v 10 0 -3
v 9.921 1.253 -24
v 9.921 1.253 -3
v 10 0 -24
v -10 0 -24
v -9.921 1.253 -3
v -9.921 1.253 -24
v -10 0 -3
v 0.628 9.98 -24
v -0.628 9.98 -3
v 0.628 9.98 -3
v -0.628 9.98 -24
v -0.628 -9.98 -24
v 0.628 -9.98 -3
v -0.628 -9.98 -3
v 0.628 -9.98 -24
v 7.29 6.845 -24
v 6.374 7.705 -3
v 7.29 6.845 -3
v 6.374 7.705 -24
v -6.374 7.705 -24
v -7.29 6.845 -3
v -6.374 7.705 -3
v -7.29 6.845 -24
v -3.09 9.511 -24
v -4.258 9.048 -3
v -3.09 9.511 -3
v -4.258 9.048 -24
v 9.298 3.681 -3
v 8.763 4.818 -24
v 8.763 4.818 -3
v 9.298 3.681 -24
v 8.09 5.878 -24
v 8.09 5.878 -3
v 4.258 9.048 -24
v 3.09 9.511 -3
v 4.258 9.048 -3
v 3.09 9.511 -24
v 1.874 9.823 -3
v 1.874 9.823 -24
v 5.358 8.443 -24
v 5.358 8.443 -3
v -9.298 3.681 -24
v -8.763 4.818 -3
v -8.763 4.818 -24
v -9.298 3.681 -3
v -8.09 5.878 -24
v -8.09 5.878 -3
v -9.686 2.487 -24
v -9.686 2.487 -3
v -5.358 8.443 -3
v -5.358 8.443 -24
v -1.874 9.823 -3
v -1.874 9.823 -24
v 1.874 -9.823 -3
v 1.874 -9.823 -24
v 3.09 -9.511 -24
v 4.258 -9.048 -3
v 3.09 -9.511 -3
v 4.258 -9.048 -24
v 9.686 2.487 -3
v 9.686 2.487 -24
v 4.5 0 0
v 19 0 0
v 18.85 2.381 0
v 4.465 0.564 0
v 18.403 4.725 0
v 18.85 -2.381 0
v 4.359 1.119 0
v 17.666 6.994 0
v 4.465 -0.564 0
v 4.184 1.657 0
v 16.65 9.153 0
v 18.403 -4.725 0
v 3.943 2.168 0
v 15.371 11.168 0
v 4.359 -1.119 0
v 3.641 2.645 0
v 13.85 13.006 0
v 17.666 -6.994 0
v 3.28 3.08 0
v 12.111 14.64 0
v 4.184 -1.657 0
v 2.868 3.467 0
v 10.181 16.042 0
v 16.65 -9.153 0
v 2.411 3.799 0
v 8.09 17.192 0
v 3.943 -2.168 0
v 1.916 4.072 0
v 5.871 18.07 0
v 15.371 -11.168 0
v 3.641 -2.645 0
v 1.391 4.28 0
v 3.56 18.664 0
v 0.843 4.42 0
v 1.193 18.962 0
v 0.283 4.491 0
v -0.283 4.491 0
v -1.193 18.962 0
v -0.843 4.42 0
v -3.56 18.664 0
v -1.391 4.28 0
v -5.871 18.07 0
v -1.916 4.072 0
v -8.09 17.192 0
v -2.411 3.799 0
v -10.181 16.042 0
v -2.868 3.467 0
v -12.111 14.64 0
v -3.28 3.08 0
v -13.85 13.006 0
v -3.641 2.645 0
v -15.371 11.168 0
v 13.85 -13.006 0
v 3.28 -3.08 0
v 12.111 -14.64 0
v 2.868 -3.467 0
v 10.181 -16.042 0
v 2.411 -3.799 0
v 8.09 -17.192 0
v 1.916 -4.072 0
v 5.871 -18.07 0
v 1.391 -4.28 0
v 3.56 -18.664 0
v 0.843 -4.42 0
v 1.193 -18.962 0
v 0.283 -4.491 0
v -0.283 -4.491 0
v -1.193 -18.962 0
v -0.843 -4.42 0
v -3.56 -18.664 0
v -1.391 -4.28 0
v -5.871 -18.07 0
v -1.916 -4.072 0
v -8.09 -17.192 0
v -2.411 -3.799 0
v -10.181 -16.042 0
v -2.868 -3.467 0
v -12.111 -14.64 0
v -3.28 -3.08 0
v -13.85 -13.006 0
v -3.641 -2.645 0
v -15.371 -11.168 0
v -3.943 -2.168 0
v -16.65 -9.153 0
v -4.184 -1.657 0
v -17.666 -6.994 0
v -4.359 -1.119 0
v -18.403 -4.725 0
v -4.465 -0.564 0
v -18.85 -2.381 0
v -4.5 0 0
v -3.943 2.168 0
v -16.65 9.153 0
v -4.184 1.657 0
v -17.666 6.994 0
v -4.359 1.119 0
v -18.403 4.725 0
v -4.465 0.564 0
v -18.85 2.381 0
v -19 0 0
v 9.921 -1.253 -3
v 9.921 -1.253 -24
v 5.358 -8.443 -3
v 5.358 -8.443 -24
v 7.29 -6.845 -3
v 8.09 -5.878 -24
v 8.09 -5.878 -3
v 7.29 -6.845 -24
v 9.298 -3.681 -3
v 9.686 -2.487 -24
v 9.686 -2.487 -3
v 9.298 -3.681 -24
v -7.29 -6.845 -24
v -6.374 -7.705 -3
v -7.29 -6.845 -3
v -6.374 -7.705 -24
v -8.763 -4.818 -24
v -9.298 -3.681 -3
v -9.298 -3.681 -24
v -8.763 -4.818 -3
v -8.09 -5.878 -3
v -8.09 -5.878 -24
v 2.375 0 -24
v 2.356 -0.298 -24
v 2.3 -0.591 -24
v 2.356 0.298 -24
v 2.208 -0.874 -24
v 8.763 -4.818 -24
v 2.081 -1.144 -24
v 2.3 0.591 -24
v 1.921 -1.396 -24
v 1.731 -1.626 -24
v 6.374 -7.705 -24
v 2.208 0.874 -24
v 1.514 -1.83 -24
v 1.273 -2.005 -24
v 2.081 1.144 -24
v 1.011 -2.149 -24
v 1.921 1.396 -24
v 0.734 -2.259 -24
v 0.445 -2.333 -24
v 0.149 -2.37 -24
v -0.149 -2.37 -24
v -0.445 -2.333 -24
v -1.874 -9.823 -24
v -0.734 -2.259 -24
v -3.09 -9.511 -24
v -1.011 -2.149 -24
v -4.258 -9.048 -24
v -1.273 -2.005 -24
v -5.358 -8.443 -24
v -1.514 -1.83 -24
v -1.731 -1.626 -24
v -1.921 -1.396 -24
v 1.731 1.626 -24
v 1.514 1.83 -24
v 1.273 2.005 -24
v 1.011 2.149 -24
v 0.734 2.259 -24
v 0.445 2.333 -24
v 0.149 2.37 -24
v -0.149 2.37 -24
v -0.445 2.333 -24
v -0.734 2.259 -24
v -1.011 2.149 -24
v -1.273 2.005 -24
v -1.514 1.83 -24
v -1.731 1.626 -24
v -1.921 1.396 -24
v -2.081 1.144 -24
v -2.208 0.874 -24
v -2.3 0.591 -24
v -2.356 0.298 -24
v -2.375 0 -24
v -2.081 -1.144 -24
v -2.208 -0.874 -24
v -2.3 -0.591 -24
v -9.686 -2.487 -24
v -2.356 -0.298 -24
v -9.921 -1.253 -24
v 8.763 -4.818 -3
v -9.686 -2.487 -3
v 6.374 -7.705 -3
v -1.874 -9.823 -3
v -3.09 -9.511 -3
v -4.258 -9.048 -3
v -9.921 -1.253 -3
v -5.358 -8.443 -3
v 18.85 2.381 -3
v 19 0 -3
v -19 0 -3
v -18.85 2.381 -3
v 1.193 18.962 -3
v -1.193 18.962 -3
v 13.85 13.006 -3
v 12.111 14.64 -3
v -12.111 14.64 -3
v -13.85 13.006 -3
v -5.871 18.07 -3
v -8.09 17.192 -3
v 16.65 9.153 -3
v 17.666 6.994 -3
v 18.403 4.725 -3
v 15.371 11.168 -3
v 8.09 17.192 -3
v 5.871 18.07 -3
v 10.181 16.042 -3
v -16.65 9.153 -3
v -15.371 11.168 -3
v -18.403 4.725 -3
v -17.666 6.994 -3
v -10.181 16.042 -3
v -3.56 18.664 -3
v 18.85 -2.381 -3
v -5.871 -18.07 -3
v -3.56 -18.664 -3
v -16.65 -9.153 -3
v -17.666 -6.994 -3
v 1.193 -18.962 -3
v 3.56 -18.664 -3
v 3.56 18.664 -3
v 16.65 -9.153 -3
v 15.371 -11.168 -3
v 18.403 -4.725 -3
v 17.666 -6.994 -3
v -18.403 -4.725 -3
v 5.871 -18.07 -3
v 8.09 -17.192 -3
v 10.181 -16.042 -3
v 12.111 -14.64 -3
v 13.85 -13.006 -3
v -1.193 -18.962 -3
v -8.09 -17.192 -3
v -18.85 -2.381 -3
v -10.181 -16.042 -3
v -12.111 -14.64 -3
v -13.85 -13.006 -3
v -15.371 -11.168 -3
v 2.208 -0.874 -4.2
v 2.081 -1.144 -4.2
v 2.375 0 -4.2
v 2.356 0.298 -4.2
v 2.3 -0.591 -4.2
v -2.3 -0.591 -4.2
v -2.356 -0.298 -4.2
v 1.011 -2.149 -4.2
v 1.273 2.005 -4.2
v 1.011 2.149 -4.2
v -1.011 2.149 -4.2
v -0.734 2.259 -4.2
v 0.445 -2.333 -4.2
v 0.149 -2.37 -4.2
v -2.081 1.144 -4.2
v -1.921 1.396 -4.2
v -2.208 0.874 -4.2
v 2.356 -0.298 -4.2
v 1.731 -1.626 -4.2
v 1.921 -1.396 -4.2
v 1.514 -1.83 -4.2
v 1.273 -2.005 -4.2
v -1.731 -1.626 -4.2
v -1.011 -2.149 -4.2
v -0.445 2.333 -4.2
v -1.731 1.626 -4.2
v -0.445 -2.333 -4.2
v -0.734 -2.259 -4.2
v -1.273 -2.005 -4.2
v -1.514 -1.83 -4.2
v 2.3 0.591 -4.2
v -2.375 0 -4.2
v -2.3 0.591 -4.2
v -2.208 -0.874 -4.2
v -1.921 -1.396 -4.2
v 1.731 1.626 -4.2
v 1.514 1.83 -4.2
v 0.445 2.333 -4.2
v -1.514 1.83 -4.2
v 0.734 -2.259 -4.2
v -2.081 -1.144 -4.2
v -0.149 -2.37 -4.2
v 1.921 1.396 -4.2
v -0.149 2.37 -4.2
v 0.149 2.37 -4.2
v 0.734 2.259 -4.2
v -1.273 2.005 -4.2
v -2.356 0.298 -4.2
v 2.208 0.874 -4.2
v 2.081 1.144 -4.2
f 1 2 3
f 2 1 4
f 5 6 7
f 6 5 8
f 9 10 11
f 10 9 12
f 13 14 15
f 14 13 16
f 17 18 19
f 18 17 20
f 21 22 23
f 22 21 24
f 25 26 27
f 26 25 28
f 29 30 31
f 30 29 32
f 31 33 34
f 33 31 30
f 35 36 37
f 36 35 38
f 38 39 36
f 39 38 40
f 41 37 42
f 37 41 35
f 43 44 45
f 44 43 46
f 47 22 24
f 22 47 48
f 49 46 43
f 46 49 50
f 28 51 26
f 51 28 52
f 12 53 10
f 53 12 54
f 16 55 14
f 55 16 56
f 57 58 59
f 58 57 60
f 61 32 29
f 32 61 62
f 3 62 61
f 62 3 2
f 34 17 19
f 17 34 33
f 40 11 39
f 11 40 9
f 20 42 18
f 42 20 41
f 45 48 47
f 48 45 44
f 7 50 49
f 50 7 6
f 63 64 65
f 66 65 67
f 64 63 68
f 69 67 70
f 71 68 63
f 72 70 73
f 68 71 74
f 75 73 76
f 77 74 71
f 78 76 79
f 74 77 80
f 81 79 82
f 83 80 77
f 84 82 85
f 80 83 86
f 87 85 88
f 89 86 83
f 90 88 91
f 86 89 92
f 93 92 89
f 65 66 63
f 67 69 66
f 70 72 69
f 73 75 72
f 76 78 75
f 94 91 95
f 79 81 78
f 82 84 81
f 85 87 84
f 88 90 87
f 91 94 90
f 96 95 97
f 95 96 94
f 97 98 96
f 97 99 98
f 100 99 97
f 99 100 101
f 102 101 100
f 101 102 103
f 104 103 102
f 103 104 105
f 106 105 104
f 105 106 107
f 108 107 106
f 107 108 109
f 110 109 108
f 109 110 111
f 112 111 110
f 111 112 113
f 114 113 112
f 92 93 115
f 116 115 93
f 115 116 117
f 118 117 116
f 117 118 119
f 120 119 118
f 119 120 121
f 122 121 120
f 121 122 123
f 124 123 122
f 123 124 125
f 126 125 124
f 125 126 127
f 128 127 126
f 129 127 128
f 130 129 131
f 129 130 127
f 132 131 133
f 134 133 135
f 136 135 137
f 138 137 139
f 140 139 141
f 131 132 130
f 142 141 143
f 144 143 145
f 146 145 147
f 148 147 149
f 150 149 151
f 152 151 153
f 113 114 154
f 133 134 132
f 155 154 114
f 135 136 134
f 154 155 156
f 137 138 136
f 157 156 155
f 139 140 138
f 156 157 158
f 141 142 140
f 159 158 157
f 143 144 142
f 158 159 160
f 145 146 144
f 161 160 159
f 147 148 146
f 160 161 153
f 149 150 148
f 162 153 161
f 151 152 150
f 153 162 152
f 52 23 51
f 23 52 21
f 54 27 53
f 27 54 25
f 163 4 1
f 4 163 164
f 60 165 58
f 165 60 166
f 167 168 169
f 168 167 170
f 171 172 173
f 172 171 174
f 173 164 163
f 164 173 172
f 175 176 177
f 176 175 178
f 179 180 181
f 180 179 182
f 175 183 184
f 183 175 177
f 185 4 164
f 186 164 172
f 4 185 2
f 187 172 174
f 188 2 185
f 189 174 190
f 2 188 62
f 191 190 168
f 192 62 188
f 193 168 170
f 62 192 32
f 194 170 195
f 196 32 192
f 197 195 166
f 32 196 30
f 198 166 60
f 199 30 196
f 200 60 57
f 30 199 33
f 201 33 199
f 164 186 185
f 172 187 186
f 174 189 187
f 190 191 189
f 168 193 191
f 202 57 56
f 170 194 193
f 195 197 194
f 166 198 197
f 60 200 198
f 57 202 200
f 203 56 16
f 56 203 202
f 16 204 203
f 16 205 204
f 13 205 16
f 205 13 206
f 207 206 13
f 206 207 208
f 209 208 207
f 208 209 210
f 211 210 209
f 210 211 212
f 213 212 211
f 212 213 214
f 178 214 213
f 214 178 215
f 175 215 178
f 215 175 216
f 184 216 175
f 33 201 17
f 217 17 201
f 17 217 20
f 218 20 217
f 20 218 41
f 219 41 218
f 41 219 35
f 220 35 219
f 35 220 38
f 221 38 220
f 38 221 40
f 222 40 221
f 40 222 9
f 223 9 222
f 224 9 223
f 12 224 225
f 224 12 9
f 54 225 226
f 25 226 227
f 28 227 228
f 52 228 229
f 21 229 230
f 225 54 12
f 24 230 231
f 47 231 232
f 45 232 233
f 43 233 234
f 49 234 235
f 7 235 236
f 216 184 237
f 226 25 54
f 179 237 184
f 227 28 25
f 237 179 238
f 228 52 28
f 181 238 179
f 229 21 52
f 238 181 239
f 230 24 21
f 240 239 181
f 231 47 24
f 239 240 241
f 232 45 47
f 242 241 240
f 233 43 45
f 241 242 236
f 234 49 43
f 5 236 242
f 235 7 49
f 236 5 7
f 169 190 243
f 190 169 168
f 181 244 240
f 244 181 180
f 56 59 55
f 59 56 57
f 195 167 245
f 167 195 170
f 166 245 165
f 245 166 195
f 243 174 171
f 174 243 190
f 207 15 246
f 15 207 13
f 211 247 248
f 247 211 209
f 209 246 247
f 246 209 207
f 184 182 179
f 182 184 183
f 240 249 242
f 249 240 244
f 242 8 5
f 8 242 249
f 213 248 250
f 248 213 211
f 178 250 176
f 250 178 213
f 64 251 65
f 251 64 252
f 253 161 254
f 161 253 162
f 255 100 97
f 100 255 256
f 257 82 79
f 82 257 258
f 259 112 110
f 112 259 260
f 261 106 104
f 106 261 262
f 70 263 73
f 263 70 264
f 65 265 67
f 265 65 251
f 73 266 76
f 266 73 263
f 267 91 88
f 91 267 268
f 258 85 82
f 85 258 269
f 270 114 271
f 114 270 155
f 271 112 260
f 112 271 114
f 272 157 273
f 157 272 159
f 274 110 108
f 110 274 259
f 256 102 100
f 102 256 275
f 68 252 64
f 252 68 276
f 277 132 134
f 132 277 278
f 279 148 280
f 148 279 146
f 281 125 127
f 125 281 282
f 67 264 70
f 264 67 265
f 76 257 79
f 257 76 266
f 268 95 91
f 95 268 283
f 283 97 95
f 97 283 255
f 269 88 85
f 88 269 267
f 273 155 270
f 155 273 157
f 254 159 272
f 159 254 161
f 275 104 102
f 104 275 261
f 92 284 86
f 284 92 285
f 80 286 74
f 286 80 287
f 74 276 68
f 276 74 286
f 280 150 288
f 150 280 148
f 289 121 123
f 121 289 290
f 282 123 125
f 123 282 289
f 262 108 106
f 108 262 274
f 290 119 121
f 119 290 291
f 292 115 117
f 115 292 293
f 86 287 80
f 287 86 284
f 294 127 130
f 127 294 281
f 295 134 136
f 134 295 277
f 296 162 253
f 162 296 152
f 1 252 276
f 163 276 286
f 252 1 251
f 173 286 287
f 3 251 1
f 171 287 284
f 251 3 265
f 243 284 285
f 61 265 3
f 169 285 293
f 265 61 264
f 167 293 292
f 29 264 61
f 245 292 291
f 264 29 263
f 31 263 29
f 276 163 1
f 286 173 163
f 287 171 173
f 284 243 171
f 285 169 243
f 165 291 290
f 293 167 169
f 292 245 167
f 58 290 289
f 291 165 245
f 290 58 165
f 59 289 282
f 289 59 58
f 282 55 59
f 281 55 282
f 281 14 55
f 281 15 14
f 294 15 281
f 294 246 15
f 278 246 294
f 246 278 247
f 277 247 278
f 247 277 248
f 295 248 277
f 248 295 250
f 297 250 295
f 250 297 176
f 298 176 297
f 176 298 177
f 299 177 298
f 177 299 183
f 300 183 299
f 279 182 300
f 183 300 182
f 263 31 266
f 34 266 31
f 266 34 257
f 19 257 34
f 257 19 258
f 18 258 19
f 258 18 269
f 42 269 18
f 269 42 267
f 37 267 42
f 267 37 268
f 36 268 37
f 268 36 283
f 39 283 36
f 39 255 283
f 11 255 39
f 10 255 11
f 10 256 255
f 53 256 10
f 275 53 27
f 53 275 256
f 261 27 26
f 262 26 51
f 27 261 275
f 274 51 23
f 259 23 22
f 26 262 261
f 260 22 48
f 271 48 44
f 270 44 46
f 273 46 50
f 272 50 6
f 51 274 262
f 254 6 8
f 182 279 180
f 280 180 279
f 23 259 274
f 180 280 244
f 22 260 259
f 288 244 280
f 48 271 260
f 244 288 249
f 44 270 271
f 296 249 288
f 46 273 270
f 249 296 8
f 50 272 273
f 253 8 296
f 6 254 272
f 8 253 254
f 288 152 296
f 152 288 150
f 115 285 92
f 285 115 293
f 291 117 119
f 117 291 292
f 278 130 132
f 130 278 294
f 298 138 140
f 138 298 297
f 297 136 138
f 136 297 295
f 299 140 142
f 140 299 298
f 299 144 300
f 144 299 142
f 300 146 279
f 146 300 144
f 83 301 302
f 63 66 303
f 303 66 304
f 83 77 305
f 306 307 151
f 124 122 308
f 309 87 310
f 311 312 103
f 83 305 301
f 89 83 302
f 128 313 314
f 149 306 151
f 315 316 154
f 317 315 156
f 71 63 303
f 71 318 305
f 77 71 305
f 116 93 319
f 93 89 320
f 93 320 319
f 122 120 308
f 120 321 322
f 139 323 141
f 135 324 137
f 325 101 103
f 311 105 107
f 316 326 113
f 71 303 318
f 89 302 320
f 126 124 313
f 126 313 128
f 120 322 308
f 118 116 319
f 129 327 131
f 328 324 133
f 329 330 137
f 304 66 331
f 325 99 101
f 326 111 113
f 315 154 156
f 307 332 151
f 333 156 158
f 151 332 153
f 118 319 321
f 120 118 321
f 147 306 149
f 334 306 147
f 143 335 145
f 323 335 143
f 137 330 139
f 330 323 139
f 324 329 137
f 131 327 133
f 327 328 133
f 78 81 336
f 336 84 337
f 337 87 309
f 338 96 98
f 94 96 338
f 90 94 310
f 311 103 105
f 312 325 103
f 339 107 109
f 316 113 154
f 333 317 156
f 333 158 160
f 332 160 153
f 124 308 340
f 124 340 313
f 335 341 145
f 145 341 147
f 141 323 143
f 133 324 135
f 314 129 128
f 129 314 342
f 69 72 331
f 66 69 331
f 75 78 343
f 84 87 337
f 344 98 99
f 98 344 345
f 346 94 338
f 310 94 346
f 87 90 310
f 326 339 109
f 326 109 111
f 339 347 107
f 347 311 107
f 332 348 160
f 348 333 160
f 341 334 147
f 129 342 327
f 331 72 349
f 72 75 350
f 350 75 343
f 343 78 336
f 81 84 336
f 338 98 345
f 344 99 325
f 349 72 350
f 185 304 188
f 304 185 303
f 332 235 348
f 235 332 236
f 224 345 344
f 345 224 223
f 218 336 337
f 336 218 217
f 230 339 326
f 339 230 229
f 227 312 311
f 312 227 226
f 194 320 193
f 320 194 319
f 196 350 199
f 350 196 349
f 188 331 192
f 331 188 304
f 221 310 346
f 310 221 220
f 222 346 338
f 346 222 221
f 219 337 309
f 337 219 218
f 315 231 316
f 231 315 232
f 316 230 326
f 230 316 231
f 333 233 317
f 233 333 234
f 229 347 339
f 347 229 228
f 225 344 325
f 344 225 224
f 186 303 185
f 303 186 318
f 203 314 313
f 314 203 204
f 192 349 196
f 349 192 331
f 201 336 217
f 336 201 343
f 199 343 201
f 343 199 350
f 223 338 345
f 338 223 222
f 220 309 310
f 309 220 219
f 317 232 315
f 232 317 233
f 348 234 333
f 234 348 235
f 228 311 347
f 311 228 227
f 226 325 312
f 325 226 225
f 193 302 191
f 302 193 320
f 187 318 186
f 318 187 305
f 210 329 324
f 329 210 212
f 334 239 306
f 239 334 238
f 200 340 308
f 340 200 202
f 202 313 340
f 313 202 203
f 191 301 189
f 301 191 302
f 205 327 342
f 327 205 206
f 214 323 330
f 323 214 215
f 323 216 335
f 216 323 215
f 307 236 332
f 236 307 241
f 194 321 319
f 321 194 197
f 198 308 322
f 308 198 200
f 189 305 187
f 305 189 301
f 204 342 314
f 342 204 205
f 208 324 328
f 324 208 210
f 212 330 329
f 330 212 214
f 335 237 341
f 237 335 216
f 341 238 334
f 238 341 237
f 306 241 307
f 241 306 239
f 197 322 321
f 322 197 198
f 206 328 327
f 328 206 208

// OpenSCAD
$fn = 50;


difference() {
	union() {
		translate(v = [0, 0, -24.0000000000]) {
			cylinder(h = 24, r = 10.0000000000);
		}
		translate(v = [0, 0, -3.0000000000]) {
			cylinder(h = 3, r = 19.0000000000);
		}
	}
	union() {
		translate(v = [0, 0, 0]) {
			rotate(a = [0, 0, 0]) {
				difference() {
					union() {
						#translate(v = [0, 0, -24.0000000000]) {
							cylinder(h = 24, r = 2.2500000000);
						}
						#translate(v = [0, 0, -4.2000000000]) {
							cylinder(h = 4.2000000000, r = 10.0000000000, r1 = 2.3750000000, r2 = 4.5000000000);
						}
						#translate(v = [0, 0, -24.0000000000]) {
							cylinder(h = 24, r = 2.3750000000);
						}
						#translate(v = [0, 0, -24.0000000000]) {
							cylinder(h = 24, r = 2.2500000000);
						}
					}
					union();
				}
			}
		}
	}
}
